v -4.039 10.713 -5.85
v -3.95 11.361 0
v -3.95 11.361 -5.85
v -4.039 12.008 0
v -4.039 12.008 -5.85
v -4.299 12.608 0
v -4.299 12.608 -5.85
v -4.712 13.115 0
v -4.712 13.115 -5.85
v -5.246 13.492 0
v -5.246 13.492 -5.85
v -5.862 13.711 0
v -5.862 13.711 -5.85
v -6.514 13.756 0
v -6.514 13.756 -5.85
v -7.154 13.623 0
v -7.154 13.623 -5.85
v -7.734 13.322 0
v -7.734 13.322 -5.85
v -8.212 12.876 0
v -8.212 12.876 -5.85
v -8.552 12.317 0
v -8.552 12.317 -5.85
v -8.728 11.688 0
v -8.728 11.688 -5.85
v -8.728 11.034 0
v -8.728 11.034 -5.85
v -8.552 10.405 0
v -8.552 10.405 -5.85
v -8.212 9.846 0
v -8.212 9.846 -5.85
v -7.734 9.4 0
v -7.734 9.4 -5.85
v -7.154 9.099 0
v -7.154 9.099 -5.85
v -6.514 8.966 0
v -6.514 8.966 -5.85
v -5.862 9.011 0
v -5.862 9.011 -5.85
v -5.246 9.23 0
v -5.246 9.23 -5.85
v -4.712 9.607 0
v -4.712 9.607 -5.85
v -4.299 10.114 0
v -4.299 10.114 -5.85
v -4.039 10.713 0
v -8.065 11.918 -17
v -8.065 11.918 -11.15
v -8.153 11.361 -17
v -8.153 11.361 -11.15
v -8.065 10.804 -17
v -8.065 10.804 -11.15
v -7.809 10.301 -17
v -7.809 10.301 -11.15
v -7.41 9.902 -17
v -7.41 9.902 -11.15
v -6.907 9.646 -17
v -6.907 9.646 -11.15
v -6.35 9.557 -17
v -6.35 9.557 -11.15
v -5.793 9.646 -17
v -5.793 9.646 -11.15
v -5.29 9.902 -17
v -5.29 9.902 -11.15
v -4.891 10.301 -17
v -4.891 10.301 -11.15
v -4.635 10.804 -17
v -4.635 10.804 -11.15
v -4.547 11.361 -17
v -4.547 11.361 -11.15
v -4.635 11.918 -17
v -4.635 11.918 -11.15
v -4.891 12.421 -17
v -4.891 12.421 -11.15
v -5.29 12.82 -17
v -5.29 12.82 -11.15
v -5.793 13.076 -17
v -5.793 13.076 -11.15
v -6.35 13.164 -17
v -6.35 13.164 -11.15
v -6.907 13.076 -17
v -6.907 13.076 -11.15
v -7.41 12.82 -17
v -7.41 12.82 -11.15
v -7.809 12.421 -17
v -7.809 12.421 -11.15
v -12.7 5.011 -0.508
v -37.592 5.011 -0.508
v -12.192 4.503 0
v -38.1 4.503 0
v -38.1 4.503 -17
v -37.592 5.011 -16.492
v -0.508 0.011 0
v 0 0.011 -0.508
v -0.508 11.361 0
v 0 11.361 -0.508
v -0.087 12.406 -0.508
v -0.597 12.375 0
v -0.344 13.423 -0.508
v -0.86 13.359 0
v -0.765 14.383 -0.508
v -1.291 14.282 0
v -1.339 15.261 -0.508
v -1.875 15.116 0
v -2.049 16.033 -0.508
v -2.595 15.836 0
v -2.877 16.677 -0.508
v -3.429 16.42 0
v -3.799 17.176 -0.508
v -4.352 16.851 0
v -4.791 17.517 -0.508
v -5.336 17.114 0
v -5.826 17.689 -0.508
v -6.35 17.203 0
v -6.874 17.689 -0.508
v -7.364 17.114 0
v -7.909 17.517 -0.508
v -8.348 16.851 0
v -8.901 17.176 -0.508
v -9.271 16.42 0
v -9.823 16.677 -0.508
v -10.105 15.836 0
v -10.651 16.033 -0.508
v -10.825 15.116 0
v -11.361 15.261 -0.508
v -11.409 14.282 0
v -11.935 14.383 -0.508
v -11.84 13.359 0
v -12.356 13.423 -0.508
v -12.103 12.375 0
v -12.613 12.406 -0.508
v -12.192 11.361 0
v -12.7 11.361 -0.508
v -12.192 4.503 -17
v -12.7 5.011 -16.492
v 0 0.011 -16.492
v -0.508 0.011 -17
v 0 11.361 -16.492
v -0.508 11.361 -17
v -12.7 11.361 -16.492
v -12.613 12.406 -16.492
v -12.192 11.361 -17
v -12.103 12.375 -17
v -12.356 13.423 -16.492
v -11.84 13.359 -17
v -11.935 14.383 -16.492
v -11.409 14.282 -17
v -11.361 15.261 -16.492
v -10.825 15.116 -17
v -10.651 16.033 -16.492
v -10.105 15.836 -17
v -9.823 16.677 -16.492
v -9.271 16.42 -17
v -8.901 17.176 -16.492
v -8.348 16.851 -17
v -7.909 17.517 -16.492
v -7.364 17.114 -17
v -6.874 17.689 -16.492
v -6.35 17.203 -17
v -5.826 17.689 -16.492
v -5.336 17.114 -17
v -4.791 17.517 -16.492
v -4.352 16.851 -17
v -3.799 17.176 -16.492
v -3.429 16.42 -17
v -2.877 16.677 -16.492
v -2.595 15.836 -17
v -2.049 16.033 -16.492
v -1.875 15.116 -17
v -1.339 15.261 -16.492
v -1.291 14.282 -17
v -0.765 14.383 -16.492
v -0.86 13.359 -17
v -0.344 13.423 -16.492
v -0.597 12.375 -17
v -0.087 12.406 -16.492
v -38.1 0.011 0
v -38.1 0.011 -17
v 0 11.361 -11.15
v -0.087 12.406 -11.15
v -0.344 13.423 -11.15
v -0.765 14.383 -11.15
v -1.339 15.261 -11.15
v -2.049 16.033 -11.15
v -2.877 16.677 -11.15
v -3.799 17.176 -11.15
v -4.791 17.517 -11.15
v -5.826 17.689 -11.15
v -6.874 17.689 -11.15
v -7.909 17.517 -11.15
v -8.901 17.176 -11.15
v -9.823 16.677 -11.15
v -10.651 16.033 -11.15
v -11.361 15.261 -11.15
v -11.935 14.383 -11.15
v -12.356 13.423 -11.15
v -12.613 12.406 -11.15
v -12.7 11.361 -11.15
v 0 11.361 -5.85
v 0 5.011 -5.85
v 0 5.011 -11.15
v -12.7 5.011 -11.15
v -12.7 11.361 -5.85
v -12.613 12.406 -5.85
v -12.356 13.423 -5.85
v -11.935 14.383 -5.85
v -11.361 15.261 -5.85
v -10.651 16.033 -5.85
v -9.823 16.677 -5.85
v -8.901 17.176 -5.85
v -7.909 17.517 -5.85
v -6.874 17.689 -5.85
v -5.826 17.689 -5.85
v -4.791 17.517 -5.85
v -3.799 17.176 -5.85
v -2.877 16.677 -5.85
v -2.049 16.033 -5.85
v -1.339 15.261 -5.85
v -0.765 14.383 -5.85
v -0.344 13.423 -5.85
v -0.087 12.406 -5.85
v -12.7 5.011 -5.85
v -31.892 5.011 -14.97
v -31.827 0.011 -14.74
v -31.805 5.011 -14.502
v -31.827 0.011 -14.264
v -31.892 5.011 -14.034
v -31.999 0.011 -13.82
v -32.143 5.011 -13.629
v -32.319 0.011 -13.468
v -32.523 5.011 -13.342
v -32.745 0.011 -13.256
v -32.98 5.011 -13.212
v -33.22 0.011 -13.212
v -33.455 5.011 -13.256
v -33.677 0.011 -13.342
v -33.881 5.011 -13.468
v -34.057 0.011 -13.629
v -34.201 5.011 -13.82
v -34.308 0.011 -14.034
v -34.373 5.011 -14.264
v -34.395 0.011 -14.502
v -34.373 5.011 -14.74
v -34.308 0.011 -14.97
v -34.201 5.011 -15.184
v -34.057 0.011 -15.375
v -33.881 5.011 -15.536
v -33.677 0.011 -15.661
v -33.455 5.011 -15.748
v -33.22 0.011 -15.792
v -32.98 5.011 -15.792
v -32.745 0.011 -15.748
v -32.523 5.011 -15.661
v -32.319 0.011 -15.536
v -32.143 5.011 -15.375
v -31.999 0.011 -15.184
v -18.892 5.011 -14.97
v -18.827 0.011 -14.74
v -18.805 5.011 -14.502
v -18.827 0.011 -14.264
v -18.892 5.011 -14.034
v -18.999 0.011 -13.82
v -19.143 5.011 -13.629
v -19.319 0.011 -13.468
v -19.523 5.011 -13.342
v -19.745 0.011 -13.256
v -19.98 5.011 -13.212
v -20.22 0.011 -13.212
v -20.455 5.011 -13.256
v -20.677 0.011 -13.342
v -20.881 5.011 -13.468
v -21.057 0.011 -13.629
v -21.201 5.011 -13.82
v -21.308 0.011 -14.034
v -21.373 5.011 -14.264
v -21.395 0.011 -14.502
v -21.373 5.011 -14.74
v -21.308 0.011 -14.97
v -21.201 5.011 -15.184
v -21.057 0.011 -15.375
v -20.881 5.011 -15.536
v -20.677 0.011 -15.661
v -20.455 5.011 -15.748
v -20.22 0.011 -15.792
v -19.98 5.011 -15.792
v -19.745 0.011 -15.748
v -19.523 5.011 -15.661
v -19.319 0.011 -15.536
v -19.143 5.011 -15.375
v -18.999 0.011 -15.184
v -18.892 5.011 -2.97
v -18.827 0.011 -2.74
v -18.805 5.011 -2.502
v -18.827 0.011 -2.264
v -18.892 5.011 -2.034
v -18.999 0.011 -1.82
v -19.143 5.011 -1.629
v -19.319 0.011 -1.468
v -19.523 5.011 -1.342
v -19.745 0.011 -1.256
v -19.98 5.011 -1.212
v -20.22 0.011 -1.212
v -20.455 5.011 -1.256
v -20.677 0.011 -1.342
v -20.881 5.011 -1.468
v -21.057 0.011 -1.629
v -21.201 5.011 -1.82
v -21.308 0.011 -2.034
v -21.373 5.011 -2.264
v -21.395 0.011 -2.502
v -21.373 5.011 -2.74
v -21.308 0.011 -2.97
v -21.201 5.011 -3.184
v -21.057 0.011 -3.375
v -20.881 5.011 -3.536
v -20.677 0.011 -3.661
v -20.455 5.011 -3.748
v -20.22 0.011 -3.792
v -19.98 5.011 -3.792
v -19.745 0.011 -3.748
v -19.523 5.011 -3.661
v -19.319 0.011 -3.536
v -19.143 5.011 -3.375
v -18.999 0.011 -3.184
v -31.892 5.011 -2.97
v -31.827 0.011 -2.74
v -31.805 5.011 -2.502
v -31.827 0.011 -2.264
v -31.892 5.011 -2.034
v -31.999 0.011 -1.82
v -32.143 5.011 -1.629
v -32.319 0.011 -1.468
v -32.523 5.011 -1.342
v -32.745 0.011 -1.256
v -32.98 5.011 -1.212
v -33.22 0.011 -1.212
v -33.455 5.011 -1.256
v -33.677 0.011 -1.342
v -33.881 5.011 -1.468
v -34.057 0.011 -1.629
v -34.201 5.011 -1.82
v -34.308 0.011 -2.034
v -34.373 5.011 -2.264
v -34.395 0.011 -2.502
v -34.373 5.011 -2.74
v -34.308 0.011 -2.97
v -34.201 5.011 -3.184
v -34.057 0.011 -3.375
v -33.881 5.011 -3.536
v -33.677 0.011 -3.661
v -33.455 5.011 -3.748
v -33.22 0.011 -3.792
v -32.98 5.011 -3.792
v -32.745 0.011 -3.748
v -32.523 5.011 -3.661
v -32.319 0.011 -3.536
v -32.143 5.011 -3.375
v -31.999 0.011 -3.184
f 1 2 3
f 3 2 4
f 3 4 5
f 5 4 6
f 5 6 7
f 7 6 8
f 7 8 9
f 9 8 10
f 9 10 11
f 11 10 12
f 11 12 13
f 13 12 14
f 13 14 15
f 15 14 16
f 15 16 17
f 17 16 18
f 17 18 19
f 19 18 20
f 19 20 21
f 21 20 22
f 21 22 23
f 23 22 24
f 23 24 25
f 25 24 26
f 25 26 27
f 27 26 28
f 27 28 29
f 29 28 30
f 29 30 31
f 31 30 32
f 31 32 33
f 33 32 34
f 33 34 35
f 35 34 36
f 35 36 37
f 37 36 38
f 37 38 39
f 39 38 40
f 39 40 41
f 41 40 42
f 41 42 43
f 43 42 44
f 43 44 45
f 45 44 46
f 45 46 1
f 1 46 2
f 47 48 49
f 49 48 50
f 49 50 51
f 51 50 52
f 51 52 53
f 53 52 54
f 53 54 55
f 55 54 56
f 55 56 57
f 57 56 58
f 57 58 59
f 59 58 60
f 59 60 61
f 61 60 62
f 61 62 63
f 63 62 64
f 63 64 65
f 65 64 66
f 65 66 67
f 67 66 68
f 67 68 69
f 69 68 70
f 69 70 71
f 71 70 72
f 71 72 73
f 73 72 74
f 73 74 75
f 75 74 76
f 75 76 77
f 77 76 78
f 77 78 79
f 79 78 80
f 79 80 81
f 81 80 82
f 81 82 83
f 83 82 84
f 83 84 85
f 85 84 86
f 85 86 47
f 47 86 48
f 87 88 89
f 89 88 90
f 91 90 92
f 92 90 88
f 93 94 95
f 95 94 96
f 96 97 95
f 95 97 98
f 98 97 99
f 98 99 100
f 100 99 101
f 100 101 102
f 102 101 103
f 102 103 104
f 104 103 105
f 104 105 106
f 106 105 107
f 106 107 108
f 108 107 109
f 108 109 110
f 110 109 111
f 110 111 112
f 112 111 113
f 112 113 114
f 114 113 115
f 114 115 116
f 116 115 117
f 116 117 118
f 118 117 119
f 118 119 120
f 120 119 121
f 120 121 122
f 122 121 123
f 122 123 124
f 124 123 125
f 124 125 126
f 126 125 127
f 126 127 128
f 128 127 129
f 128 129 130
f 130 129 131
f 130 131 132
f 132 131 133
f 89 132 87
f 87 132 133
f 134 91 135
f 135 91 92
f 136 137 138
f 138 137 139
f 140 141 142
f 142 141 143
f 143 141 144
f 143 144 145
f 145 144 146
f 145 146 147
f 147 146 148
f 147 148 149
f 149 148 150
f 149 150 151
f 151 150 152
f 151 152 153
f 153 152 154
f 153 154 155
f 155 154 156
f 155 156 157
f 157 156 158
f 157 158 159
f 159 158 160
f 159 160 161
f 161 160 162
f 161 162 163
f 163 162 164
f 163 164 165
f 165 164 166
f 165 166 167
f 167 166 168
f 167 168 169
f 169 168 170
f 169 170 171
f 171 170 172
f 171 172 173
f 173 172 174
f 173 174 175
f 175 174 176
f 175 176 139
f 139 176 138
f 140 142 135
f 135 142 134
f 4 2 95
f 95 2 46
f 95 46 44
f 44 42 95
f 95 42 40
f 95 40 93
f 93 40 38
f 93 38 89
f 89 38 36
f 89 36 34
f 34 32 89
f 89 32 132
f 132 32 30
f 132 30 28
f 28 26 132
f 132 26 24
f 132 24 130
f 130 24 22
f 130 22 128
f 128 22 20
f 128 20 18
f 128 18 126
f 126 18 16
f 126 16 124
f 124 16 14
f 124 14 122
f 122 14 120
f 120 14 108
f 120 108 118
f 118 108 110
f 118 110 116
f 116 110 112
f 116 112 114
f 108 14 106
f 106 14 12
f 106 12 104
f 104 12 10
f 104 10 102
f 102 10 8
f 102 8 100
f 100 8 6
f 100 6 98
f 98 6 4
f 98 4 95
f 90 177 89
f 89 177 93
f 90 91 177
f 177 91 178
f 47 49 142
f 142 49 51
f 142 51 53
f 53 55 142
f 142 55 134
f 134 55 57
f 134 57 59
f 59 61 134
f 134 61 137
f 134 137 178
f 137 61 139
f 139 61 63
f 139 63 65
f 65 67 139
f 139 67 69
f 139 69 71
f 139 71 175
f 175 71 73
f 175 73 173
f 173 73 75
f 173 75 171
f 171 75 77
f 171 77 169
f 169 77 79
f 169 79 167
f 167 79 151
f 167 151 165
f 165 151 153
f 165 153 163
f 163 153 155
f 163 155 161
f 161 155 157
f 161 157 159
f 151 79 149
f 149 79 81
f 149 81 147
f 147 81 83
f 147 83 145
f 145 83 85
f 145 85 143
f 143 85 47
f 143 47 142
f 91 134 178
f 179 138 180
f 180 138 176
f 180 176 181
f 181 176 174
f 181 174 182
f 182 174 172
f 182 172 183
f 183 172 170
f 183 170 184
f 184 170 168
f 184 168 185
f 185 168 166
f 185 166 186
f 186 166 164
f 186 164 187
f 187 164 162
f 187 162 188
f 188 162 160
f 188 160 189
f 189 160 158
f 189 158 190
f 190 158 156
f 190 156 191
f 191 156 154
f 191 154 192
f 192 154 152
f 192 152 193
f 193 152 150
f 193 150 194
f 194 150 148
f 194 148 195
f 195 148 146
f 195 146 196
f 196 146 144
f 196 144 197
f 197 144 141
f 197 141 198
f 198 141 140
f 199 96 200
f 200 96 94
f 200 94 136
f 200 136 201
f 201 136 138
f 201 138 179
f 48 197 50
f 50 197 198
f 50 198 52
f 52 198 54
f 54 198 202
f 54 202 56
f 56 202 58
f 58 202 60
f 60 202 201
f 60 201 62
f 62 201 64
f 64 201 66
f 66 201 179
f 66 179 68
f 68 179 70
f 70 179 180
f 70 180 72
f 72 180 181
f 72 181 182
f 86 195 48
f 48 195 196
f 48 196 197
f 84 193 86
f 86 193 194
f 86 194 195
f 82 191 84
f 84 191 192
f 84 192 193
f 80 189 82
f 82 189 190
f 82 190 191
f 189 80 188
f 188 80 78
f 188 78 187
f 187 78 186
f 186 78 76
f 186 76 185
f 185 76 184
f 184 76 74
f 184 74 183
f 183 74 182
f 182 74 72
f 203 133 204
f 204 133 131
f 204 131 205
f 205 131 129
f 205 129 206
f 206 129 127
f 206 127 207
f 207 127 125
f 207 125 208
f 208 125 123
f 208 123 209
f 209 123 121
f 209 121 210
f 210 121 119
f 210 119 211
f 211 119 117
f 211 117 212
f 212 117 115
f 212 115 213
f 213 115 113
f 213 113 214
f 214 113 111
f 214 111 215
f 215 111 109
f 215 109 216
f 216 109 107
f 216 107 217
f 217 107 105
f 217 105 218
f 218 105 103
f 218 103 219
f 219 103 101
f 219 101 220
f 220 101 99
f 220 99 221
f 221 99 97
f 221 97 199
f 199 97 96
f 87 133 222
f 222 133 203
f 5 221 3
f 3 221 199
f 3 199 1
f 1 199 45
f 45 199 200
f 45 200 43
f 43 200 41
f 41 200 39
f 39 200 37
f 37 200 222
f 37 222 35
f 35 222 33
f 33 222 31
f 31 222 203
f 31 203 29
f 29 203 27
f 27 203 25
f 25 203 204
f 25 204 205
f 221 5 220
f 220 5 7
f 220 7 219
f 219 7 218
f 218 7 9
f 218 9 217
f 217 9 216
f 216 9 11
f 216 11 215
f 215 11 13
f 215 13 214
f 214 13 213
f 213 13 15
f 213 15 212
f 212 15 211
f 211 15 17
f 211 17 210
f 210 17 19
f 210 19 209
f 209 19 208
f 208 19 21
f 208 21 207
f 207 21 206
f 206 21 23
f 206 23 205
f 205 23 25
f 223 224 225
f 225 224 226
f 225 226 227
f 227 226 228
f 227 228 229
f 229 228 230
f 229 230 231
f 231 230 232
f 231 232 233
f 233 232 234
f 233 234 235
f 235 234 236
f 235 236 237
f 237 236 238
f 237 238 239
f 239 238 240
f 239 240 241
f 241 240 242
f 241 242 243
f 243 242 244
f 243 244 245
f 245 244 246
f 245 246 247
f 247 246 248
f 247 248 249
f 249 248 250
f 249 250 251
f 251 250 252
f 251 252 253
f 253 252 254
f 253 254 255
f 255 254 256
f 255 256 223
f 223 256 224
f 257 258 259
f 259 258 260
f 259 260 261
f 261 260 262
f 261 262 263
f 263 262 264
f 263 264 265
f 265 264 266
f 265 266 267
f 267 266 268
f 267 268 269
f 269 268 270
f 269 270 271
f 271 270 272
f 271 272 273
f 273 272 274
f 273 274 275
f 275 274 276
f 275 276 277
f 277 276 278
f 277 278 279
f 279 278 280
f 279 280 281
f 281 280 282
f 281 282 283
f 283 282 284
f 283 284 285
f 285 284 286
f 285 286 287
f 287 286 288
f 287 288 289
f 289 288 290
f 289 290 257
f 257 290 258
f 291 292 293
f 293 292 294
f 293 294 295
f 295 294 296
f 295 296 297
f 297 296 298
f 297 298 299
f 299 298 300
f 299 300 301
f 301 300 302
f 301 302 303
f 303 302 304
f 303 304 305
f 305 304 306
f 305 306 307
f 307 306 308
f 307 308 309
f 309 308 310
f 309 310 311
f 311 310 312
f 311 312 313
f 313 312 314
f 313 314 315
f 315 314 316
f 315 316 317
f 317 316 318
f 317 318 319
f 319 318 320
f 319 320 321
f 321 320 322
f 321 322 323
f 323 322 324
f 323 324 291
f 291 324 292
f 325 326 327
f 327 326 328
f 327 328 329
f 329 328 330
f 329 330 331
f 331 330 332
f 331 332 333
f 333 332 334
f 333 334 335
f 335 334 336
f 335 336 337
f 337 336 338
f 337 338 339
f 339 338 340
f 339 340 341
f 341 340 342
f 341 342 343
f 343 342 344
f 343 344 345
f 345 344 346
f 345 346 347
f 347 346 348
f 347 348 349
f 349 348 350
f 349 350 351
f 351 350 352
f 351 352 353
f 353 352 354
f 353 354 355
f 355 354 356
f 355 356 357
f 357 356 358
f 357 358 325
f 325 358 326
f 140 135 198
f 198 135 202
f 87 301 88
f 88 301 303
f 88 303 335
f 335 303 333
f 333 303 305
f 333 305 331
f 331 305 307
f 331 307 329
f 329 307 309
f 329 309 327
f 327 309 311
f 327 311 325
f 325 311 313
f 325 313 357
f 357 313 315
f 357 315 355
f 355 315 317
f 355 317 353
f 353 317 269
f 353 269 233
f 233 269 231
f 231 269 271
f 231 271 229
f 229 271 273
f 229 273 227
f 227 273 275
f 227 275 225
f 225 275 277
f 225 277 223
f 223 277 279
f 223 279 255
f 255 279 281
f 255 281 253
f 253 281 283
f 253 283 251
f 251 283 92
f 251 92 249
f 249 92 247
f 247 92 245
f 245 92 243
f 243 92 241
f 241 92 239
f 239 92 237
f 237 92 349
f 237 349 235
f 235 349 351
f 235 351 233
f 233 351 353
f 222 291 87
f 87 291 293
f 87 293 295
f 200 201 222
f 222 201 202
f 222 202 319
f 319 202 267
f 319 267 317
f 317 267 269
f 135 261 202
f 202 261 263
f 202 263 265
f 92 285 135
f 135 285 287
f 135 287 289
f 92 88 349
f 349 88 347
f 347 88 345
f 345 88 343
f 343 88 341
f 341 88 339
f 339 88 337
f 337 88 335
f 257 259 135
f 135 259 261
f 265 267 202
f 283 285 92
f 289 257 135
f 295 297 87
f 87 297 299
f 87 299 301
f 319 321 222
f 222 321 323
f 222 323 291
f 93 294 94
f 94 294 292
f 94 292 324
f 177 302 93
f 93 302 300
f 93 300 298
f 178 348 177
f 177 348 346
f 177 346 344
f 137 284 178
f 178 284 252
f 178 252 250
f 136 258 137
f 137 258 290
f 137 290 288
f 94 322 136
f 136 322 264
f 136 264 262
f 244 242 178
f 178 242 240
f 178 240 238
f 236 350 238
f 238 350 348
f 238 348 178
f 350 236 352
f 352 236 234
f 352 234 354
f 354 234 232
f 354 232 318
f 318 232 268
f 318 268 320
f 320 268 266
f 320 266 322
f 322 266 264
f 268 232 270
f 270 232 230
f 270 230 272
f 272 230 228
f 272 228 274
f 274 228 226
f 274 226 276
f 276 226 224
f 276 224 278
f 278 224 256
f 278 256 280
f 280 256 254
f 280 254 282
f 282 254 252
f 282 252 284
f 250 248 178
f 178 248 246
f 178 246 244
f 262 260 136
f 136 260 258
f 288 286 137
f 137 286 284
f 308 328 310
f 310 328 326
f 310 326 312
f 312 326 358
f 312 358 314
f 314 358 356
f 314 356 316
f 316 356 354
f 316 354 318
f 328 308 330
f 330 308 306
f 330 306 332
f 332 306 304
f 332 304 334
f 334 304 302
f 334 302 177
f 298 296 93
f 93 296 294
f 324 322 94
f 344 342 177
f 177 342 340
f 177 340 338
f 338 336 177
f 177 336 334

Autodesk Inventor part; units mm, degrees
ref_plane "YZ Plane" through (0, 0, 0) normal (1, 0, 0) x (0, 1, 0)
ref_plane "XZ Plane" through (0, 0, 0) normal (0, 1, 0) x (-1, 0, 0)
ref_plane "XY Plane" through (0, 0, 0) normal (0, 0, 1) x (1, 0, 0)
sketch "Sketch1" plane through (0, 0, 0) normal (0, 1, 0) x (-1, 0, 0)
  line L0 (0, 0) -> (38.1, 0)
  line L1 (38.1, 0) -> (38.1, -17)
  line L2 (38.1, -17) -> (0, -17)
  line L3 (0, -17) -> (0, 0)
  circle A0 centre (33.1, -2.5019) radius 1
  circle A1 centre (20.1, -2.5019) radius 1
  circle A2 centre (33.1, -14.5019) radius 1
  circle A3 centre (20.1, -14.5019) radius 1
  dimension "d0" = 38.1
  dimension "d1" = 17
  dimension "d41" = 2
  dimension "d42" = 2
  dimension "d43" = 2
  dimension "d44" = 2
  dimension "d45" = 13
  dimension "d46" = 12
  dimension "d47" = 2.5019
  dimension "d48" = 5
extrude "Extrusion1" add sketch "Sketch1" along normal blind 5 contours L0 L1 L2 L3 | A0 | A1 | A2 | A3
sketch "Sketch2" plane through (-38.1, 0, 0) normal (0, 0, 1) x (1, 0, 0)
  line L0 (0, 0) -> (38.1, 0) projected
  line L1 (38.1, 0) -> (38.1, 5) projected
  line L2 (0, 5) -> (38.1, 5) projected
  line L3 (0, 0) -> (0, 5) projected
  line L4 (38.1, 5) -> (25.4, 5)
  line L5 (25.4, 5) -> (25.4, 17.7)
  line L6 (25.4, 17.7) -> (38.1, 17.7)
  line L7 (38.1, 17.7) -> (38.1, 5)
  line L8 (31.75, 17.7) -> (31.75, 5) construction
  circle A0 centre (31.75, 11.35) radius 1.5
  point P0 (25.4, 5)
  dimension "d6" = 12.7
  dimension "d7" = 12.7
  dimension "d14" = 3
extrude "Extrusion2" add sketch "Sketch2" against normal up to surface (17 mm away) contours L2 L5 L6 L7 | A0
sketch "Sketch3" plane through (-12.7, 17.7, 0) normal (0, 1, 0) x (1, 0, 0)
  line L0 (12.7, 17) -> (0, 17) projected
  line L1 (0, 0) -> (0, 17) projected
  line L2 (12.7, 0) -> (0, 0) projected
  line L3 (12.7, 0) -> (12.7, 17) projected
  line L4 (0, 8.5) -> (12.7, 8.5) construction
  line L5 (0, 5.85) -> (12.7, 5.85)
  line L6 (12.7, 5.85) -> (12.7, 11.15)
  line L7 (12.7, 11.15) -> (0, 11.15)
  line L8 (0, 11.15) -> (0, 5.85)
  line L9 (0, 5.85) -> (12.7, 11.15) construction
  line L10 (12.7, 5.85) -> (0, 11.15) construction
  point P0 (12.7, 0)
  point P1 (6.35, 8.5)
  point P2 (0, 11.15)
  point P3 (0, 5.85)
  point P4 (12.7, 5.85)
  dimension "d10" = 5.3
extrude "Extrusion3" cut sketch "Sketch3" against normal up to surface (12.7 mm away) contours L3 L5 L1 L7
hole "Hole1" at (-33.1, 0, -2.5019) at (-20.1, 0, -2.5019) at (-20.1, 0, -14.5019) at (-33.1, 0, -14.5019) direction (0, 1, 0) diameter 2.5908 end through all clearance for "Flat Head Machine Screw" size "M2" standard "Ansi Metric M Profile"
fillet "Fillet1" radius 6.35 4 edges at (-12.7, 17.7, -2.925) (0, 17.7, -2.925) (0, 17.7, -14.075) (-12.7, 17.7, -14.075)
chamfer "Chamfer1" distance 0.508 angle 45 9 edges at (-25.4, 5, 0) (-12.7, 8.175, 0) (-10.8402, 15.8402, 0) (0, 5.6751, 0) (-1.8598, 15.8402, -17) (-12.7, 8.175, -17) (0, 5.6751, -17) (-25.4, 5, -17) (-38.1, 5, -8.5)
hole "Hole2" at (-6.35, 11.35, 0) direction (0, 0, -1) diameter 3.6068 end through all clearance for "Flat Head Machine Screw" size "M3" standard "Ansi Metric M Profile"
hole "Hole3" at (-6.35, 11.35, 0) direction (0, 0, -1) diameter 4.8006 depth 5.85 clearance for "Flat Head Machine Screw" size "M4" standard "Ansi Metric M Profile"
